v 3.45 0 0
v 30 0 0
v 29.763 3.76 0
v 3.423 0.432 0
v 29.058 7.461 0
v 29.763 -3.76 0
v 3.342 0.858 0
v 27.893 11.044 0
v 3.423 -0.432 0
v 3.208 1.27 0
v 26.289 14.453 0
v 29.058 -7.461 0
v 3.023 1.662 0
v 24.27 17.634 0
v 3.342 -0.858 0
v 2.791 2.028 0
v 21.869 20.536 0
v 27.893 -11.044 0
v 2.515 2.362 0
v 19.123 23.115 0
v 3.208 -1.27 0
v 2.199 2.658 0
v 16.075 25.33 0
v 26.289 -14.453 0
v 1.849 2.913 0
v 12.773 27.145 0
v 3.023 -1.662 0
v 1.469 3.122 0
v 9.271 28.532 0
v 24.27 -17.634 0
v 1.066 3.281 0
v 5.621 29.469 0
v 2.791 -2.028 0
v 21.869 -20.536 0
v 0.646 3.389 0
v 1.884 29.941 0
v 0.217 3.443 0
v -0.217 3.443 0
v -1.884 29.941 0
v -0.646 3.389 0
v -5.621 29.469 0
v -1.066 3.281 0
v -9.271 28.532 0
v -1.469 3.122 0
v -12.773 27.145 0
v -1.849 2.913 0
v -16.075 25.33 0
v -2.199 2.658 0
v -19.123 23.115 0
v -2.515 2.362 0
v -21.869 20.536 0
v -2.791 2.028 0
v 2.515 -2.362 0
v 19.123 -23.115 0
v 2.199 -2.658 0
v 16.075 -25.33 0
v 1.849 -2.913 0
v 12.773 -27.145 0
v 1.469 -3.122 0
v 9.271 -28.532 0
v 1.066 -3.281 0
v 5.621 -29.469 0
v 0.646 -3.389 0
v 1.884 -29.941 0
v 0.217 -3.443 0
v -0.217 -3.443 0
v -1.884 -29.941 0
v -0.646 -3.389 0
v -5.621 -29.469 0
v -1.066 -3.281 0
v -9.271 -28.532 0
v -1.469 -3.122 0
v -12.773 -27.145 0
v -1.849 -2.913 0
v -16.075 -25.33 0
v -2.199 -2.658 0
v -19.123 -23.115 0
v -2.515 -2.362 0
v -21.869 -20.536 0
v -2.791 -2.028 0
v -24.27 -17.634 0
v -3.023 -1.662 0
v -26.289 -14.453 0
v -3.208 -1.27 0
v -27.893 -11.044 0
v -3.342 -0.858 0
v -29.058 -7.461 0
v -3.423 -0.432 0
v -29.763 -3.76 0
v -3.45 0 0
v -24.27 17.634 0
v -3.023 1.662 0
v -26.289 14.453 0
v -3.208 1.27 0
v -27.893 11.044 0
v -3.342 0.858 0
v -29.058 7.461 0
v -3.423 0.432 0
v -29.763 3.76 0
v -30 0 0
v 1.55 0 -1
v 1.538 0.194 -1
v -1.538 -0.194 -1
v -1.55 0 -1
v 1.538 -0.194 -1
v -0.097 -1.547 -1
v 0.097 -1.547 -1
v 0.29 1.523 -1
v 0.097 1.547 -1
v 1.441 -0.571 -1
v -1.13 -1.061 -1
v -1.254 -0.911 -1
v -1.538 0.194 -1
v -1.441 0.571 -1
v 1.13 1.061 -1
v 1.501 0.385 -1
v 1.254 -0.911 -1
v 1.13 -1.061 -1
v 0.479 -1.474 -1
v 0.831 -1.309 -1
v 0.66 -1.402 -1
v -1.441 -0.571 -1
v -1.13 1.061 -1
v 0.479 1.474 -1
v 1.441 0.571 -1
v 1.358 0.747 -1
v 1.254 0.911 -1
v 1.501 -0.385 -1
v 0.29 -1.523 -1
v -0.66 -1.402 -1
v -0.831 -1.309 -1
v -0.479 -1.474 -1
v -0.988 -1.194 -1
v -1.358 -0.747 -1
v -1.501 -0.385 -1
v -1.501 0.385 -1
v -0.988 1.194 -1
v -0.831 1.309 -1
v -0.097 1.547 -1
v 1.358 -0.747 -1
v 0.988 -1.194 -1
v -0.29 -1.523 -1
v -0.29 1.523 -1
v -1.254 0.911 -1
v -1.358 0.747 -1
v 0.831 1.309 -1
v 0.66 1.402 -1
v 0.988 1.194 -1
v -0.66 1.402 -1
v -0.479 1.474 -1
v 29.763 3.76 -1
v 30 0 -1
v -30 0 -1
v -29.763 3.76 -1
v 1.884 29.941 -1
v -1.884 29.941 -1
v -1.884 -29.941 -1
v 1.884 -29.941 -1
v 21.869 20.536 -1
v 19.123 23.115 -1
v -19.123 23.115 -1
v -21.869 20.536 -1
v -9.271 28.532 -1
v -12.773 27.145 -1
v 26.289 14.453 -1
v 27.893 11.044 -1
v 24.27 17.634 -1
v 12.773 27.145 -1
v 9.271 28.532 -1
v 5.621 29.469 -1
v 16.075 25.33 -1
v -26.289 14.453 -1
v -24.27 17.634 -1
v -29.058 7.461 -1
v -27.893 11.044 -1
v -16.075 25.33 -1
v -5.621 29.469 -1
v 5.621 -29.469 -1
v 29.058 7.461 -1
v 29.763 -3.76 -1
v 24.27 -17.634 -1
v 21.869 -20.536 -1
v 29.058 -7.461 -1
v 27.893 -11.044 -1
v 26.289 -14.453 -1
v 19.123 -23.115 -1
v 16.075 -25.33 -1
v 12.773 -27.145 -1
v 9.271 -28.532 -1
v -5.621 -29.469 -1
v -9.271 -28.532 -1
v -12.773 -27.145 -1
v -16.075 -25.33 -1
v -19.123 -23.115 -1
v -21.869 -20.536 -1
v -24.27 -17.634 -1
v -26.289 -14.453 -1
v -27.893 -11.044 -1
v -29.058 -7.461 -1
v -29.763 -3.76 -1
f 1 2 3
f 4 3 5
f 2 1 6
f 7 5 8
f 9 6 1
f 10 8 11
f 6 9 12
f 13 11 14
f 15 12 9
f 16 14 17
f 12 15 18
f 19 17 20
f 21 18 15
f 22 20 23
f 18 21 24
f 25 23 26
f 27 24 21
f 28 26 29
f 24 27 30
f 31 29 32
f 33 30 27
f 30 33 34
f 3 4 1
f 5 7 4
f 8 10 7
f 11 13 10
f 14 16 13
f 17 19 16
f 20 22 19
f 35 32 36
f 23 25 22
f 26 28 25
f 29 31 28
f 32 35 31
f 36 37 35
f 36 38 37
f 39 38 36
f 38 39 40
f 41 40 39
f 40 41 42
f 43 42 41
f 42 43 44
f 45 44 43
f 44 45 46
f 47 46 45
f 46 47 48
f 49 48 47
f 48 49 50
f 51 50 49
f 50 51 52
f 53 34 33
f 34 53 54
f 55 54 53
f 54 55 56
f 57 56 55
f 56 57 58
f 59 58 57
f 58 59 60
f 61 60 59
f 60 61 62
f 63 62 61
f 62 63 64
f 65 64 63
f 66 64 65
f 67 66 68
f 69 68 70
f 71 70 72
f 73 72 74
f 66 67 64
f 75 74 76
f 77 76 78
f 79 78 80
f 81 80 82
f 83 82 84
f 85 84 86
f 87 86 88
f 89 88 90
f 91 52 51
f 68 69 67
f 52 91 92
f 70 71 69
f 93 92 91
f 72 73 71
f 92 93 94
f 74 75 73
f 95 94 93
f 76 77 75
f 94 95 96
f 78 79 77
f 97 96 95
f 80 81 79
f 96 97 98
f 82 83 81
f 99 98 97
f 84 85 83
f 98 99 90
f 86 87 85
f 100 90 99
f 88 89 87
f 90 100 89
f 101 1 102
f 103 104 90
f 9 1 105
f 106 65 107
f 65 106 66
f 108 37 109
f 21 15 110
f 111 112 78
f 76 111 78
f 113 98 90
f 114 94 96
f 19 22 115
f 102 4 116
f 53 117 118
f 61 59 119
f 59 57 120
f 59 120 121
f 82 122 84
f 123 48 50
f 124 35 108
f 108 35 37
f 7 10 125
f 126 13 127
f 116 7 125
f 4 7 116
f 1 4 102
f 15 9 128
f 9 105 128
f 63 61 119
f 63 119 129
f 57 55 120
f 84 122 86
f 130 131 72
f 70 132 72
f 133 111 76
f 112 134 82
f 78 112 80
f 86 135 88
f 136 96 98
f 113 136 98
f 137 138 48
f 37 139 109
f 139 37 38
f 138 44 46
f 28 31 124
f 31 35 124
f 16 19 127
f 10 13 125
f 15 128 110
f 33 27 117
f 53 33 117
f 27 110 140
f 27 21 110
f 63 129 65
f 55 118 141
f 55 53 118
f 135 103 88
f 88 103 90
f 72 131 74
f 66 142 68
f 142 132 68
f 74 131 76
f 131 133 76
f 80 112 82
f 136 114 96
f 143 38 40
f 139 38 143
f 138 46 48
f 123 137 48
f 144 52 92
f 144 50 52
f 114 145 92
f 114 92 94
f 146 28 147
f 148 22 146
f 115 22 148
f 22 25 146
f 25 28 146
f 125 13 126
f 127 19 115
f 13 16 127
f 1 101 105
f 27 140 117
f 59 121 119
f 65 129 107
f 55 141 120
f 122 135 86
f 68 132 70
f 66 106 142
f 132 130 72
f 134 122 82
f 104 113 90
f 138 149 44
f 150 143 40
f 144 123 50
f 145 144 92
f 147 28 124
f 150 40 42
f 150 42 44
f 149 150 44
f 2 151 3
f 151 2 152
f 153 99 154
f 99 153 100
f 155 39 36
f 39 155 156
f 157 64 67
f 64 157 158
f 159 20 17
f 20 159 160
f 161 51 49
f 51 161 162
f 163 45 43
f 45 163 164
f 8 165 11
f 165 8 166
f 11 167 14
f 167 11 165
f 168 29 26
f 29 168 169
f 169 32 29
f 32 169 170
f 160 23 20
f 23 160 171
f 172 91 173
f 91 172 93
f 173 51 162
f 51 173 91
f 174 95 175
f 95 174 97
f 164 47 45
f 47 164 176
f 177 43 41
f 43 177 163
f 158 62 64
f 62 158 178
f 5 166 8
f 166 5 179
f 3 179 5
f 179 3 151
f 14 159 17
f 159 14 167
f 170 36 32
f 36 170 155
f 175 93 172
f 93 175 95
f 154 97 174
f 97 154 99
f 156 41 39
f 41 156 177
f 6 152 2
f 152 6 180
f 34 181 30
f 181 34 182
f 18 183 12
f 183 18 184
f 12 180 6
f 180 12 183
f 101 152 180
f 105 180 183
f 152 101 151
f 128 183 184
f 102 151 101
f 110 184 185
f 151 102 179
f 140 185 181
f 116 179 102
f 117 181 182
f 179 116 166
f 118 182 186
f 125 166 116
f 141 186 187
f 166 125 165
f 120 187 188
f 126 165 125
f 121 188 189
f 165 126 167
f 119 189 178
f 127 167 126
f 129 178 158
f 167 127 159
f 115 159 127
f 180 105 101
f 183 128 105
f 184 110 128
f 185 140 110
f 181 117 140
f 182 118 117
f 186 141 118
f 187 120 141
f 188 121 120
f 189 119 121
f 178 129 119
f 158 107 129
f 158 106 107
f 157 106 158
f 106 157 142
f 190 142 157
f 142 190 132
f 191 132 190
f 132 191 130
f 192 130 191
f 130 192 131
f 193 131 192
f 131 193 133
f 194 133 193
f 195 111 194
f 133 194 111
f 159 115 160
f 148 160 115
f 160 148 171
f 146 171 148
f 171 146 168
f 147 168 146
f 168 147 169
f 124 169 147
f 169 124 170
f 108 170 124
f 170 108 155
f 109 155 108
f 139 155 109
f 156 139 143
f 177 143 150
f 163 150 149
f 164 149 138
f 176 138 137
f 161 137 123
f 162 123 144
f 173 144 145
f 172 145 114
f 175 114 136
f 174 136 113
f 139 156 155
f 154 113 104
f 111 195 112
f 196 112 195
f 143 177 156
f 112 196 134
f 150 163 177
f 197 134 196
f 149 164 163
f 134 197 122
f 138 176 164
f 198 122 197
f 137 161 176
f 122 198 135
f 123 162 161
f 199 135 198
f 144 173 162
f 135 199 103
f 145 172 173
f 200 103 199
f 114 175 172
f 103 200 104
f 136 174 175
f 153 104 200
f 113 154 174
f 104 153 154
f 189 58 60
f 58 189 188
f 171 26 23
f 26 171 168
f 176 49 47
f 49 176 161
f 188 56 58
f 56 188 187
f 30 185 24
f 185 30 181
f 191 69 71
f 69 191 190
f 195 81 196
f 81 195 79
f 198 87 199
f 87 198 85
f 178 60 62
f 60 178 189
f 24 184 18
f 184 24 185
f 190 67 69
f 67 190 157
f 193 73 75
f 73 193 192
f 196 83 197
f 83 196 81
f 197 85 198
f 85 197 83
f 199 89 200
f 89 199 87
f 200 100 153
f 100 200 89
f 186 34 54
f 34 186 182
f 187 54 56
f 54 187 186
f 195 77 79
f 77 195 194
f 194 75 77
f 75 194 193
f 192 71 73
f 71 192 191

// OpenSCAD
$fn = 50;


difference() {
	union() {
		translate(v = [0, 0, -1.0000000000]) {
			cylinder(h = 1.0000000000, r = 30.0000000000);
		}
	}
	union() {
		translate(v = [0, 0, 0]) {
			rotate(a = [0, 0, 0]) {
				difference() {
					union() {
						translate(v = [0, 0, -4.0000000000]) {
							cylinder(h = 4.0000000000, r = 1.2500000000);
						}
						translate(v = [0, 0, -1.0000000000]) {
							cylinder(h = 1.0000000000, r1 = 1.5500000000, r2 = 3.4500000000);
						}
						translate(v = [0, 0, -4.0000000000]) {
							cylinder(h = 4.0000000000, r = 1.5500000000);
						}
						translate(v = [0, 0, -4.0000000000]) {
							cylinder(h = 4.0000000000, r = 1.2500000000);
						}
					}
					union();
				}
			}
		}
	}
}
